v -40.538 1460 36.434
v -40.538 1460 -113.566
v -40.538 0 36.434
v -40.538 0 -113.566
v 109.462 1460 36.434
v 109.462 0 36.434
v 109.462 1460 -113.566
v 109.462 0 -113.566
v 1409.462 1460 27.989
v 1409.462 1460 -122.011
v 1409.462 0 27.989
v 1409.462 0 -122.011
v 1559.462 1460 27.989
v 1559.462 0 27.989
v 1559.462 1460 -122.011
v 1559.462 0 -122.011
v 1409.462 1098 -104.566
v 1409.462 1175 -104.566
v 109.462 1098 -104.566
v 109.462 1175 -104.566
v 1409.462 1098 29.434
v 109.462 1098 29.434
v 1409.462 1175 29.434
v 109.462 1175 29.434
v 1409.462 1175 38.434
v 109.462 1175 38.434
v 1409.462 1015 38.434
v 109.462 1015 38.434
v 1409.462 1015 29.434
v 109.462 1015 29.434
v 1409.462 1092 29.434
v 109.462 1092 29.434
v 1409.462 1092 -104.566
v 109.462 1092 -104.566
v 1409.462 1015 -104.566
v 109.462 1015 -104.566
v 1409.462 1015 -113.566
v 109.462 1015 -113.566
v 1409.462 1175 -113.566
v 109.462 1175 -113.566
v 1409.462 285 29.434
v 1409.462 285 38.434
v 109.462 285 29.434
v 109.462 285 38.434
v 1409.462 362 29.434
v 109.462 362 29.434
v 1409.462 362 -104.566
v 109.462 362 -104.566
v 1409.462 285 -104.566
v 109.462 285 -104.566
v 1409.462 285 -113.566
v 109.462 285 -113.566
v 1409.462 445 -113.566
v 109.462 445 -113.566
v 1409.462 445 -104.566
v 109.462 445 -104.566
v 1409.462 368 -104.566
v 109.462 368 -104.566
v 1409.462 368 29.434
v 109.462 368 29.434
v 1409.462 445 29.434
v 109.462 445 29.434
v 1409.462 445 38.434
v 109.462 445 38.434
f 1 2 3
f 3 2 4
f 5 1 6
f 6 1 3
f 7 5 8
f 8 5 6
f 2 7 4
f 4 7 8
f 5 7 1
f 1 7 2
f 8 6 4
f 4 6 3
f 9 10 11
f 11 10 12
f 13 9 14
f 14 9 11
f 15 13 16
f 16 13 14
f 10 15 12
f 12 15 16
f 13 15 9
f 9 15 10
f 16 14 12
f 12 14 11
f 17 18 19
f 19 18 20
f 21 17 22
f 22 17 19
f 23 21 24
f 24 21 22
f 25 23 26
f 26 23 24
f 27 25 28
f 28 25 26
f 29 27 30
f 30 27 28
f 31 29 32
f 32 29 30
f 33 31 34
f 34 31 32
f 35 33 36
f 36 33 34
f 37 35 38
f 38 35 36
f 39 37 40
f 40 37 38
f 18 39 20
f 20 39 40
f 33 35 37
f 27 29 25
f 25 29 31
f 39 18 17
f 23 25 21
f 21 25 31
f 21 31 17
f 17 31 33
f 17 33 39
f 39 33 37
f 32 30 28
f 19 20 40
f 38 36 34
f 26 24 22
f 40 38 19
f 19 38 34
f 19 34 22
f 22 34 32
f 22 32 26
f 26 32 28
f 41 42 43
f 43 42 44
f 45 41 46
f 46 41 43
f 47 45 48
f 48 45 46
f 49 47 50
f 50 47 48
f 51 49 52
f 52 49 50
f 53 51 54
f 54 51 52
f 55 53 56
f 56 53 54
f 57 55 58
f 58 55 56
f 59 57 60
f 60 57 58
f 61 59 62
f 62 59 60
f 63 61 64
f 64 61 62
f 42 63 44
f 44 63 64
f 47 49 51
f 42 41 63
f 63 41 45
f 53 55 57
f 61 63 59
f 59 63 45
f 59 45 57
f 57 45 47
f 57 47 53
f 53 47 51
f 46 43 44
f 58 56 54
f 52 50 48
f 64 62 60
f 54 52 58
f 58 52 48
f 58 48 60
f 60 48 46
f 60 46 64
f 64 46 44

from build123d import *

# Parameters (mm, degrees)
SKETCH1_W             = 150
SKETCH1_H             = 150
BOSS_EXTRUDE1_DEPTH   = 1460
BOSS_EXTRUDE1_2_DEPTH = 1460
BOSS_EXTRUDE2_DEPTH   = 1300
BOSS_EXTRUDE2_2_DEPTH = 1300


with BuildPart() as part:
    # Sketch1 → Boss-Extrude1 (new body)
    with BuildSketch(Plane(origin=(0, 0, 0), x_dir=(1, 0, 0), z_dir=(0, 1, 0))):
        with Locations((1484.462268864, 47.010460547)):
            Rectangle(SKETCH1_W, SKETCH1_H)
    extrude(amount=BOSS_EXTRUDE1_DEPTH)


with BuildPart() as body_2:
    # Sketch1 → Boss-Extrude1 2 (new body)
    with BuildSketch(Plane(origin=(0, 0, 0), x_dir=(1, 0, 0), z_dir=(0, 1, 0))):
        with Locations((34.462268864, 38.565781525)):
            Rectangle(SKETCH1_W, SKETCH1_H)
    extrude(amount=BOSS_EXTRUDE1_2_DEPTH)


with BuildPart() as body_3:
    # Sketch3 → Boss-Extrude2 (new body)
    with BuildSketch(Plane(origin=(109.462268864, 0, 0), x_dir=(0, 0, -1), z_dir=(1, 0, 0))):
        Polygon((-38.43421847, 284.99999996), (-38.43421847, 444.99999993), (-29.43421847, 444.99999993), (-29.43421847, 367.99999993), (104.565781535, 367.99999993), (104.565781535, 445.000000025), (113.565781515, 445.000000025), (113.565781515, 284.999999975), (104.565781535, 284.999999975), (104.565781535, 361.99999996), (-29.43421847, 361.99999996), (-29.43421847, 284.99999996), align=None)
    extrude(amount=BOSS_EXTRUDE2_DEPTH)


with BuildPart() as body_4:
    # Sketch3 → Boss-Extrude2 2 (new body)
    with BuildSketch(Plane(origin=(109.462268864, 0, 0), x_dir=(0, 0, -1), z_dir=(1, 0, 0))):
        Polygon((-29.43421847, 1097.99999993), (-29.43421847, 1174.99999993), (-38.43421847, 1174.99999993), (-38.43421847, 1014.99999996), (-29.43421847, 1014.99999996), (-29.43421847, 1091.99999996), (104.565781535, 1091.99999996), (104.565781535, 1014.999999975), (113.565781515, 1014.999999975), (113.565781515, 1175.000000025), (104.565781535, 1175.000000025), (104.565781535, 1097.99999993), align=None)
    extrude(amount=BOSS_EXTRUDE2_2_DEPTH)


solid = Compound([part.part, body_2.part, body_3.part, body_4.part])
